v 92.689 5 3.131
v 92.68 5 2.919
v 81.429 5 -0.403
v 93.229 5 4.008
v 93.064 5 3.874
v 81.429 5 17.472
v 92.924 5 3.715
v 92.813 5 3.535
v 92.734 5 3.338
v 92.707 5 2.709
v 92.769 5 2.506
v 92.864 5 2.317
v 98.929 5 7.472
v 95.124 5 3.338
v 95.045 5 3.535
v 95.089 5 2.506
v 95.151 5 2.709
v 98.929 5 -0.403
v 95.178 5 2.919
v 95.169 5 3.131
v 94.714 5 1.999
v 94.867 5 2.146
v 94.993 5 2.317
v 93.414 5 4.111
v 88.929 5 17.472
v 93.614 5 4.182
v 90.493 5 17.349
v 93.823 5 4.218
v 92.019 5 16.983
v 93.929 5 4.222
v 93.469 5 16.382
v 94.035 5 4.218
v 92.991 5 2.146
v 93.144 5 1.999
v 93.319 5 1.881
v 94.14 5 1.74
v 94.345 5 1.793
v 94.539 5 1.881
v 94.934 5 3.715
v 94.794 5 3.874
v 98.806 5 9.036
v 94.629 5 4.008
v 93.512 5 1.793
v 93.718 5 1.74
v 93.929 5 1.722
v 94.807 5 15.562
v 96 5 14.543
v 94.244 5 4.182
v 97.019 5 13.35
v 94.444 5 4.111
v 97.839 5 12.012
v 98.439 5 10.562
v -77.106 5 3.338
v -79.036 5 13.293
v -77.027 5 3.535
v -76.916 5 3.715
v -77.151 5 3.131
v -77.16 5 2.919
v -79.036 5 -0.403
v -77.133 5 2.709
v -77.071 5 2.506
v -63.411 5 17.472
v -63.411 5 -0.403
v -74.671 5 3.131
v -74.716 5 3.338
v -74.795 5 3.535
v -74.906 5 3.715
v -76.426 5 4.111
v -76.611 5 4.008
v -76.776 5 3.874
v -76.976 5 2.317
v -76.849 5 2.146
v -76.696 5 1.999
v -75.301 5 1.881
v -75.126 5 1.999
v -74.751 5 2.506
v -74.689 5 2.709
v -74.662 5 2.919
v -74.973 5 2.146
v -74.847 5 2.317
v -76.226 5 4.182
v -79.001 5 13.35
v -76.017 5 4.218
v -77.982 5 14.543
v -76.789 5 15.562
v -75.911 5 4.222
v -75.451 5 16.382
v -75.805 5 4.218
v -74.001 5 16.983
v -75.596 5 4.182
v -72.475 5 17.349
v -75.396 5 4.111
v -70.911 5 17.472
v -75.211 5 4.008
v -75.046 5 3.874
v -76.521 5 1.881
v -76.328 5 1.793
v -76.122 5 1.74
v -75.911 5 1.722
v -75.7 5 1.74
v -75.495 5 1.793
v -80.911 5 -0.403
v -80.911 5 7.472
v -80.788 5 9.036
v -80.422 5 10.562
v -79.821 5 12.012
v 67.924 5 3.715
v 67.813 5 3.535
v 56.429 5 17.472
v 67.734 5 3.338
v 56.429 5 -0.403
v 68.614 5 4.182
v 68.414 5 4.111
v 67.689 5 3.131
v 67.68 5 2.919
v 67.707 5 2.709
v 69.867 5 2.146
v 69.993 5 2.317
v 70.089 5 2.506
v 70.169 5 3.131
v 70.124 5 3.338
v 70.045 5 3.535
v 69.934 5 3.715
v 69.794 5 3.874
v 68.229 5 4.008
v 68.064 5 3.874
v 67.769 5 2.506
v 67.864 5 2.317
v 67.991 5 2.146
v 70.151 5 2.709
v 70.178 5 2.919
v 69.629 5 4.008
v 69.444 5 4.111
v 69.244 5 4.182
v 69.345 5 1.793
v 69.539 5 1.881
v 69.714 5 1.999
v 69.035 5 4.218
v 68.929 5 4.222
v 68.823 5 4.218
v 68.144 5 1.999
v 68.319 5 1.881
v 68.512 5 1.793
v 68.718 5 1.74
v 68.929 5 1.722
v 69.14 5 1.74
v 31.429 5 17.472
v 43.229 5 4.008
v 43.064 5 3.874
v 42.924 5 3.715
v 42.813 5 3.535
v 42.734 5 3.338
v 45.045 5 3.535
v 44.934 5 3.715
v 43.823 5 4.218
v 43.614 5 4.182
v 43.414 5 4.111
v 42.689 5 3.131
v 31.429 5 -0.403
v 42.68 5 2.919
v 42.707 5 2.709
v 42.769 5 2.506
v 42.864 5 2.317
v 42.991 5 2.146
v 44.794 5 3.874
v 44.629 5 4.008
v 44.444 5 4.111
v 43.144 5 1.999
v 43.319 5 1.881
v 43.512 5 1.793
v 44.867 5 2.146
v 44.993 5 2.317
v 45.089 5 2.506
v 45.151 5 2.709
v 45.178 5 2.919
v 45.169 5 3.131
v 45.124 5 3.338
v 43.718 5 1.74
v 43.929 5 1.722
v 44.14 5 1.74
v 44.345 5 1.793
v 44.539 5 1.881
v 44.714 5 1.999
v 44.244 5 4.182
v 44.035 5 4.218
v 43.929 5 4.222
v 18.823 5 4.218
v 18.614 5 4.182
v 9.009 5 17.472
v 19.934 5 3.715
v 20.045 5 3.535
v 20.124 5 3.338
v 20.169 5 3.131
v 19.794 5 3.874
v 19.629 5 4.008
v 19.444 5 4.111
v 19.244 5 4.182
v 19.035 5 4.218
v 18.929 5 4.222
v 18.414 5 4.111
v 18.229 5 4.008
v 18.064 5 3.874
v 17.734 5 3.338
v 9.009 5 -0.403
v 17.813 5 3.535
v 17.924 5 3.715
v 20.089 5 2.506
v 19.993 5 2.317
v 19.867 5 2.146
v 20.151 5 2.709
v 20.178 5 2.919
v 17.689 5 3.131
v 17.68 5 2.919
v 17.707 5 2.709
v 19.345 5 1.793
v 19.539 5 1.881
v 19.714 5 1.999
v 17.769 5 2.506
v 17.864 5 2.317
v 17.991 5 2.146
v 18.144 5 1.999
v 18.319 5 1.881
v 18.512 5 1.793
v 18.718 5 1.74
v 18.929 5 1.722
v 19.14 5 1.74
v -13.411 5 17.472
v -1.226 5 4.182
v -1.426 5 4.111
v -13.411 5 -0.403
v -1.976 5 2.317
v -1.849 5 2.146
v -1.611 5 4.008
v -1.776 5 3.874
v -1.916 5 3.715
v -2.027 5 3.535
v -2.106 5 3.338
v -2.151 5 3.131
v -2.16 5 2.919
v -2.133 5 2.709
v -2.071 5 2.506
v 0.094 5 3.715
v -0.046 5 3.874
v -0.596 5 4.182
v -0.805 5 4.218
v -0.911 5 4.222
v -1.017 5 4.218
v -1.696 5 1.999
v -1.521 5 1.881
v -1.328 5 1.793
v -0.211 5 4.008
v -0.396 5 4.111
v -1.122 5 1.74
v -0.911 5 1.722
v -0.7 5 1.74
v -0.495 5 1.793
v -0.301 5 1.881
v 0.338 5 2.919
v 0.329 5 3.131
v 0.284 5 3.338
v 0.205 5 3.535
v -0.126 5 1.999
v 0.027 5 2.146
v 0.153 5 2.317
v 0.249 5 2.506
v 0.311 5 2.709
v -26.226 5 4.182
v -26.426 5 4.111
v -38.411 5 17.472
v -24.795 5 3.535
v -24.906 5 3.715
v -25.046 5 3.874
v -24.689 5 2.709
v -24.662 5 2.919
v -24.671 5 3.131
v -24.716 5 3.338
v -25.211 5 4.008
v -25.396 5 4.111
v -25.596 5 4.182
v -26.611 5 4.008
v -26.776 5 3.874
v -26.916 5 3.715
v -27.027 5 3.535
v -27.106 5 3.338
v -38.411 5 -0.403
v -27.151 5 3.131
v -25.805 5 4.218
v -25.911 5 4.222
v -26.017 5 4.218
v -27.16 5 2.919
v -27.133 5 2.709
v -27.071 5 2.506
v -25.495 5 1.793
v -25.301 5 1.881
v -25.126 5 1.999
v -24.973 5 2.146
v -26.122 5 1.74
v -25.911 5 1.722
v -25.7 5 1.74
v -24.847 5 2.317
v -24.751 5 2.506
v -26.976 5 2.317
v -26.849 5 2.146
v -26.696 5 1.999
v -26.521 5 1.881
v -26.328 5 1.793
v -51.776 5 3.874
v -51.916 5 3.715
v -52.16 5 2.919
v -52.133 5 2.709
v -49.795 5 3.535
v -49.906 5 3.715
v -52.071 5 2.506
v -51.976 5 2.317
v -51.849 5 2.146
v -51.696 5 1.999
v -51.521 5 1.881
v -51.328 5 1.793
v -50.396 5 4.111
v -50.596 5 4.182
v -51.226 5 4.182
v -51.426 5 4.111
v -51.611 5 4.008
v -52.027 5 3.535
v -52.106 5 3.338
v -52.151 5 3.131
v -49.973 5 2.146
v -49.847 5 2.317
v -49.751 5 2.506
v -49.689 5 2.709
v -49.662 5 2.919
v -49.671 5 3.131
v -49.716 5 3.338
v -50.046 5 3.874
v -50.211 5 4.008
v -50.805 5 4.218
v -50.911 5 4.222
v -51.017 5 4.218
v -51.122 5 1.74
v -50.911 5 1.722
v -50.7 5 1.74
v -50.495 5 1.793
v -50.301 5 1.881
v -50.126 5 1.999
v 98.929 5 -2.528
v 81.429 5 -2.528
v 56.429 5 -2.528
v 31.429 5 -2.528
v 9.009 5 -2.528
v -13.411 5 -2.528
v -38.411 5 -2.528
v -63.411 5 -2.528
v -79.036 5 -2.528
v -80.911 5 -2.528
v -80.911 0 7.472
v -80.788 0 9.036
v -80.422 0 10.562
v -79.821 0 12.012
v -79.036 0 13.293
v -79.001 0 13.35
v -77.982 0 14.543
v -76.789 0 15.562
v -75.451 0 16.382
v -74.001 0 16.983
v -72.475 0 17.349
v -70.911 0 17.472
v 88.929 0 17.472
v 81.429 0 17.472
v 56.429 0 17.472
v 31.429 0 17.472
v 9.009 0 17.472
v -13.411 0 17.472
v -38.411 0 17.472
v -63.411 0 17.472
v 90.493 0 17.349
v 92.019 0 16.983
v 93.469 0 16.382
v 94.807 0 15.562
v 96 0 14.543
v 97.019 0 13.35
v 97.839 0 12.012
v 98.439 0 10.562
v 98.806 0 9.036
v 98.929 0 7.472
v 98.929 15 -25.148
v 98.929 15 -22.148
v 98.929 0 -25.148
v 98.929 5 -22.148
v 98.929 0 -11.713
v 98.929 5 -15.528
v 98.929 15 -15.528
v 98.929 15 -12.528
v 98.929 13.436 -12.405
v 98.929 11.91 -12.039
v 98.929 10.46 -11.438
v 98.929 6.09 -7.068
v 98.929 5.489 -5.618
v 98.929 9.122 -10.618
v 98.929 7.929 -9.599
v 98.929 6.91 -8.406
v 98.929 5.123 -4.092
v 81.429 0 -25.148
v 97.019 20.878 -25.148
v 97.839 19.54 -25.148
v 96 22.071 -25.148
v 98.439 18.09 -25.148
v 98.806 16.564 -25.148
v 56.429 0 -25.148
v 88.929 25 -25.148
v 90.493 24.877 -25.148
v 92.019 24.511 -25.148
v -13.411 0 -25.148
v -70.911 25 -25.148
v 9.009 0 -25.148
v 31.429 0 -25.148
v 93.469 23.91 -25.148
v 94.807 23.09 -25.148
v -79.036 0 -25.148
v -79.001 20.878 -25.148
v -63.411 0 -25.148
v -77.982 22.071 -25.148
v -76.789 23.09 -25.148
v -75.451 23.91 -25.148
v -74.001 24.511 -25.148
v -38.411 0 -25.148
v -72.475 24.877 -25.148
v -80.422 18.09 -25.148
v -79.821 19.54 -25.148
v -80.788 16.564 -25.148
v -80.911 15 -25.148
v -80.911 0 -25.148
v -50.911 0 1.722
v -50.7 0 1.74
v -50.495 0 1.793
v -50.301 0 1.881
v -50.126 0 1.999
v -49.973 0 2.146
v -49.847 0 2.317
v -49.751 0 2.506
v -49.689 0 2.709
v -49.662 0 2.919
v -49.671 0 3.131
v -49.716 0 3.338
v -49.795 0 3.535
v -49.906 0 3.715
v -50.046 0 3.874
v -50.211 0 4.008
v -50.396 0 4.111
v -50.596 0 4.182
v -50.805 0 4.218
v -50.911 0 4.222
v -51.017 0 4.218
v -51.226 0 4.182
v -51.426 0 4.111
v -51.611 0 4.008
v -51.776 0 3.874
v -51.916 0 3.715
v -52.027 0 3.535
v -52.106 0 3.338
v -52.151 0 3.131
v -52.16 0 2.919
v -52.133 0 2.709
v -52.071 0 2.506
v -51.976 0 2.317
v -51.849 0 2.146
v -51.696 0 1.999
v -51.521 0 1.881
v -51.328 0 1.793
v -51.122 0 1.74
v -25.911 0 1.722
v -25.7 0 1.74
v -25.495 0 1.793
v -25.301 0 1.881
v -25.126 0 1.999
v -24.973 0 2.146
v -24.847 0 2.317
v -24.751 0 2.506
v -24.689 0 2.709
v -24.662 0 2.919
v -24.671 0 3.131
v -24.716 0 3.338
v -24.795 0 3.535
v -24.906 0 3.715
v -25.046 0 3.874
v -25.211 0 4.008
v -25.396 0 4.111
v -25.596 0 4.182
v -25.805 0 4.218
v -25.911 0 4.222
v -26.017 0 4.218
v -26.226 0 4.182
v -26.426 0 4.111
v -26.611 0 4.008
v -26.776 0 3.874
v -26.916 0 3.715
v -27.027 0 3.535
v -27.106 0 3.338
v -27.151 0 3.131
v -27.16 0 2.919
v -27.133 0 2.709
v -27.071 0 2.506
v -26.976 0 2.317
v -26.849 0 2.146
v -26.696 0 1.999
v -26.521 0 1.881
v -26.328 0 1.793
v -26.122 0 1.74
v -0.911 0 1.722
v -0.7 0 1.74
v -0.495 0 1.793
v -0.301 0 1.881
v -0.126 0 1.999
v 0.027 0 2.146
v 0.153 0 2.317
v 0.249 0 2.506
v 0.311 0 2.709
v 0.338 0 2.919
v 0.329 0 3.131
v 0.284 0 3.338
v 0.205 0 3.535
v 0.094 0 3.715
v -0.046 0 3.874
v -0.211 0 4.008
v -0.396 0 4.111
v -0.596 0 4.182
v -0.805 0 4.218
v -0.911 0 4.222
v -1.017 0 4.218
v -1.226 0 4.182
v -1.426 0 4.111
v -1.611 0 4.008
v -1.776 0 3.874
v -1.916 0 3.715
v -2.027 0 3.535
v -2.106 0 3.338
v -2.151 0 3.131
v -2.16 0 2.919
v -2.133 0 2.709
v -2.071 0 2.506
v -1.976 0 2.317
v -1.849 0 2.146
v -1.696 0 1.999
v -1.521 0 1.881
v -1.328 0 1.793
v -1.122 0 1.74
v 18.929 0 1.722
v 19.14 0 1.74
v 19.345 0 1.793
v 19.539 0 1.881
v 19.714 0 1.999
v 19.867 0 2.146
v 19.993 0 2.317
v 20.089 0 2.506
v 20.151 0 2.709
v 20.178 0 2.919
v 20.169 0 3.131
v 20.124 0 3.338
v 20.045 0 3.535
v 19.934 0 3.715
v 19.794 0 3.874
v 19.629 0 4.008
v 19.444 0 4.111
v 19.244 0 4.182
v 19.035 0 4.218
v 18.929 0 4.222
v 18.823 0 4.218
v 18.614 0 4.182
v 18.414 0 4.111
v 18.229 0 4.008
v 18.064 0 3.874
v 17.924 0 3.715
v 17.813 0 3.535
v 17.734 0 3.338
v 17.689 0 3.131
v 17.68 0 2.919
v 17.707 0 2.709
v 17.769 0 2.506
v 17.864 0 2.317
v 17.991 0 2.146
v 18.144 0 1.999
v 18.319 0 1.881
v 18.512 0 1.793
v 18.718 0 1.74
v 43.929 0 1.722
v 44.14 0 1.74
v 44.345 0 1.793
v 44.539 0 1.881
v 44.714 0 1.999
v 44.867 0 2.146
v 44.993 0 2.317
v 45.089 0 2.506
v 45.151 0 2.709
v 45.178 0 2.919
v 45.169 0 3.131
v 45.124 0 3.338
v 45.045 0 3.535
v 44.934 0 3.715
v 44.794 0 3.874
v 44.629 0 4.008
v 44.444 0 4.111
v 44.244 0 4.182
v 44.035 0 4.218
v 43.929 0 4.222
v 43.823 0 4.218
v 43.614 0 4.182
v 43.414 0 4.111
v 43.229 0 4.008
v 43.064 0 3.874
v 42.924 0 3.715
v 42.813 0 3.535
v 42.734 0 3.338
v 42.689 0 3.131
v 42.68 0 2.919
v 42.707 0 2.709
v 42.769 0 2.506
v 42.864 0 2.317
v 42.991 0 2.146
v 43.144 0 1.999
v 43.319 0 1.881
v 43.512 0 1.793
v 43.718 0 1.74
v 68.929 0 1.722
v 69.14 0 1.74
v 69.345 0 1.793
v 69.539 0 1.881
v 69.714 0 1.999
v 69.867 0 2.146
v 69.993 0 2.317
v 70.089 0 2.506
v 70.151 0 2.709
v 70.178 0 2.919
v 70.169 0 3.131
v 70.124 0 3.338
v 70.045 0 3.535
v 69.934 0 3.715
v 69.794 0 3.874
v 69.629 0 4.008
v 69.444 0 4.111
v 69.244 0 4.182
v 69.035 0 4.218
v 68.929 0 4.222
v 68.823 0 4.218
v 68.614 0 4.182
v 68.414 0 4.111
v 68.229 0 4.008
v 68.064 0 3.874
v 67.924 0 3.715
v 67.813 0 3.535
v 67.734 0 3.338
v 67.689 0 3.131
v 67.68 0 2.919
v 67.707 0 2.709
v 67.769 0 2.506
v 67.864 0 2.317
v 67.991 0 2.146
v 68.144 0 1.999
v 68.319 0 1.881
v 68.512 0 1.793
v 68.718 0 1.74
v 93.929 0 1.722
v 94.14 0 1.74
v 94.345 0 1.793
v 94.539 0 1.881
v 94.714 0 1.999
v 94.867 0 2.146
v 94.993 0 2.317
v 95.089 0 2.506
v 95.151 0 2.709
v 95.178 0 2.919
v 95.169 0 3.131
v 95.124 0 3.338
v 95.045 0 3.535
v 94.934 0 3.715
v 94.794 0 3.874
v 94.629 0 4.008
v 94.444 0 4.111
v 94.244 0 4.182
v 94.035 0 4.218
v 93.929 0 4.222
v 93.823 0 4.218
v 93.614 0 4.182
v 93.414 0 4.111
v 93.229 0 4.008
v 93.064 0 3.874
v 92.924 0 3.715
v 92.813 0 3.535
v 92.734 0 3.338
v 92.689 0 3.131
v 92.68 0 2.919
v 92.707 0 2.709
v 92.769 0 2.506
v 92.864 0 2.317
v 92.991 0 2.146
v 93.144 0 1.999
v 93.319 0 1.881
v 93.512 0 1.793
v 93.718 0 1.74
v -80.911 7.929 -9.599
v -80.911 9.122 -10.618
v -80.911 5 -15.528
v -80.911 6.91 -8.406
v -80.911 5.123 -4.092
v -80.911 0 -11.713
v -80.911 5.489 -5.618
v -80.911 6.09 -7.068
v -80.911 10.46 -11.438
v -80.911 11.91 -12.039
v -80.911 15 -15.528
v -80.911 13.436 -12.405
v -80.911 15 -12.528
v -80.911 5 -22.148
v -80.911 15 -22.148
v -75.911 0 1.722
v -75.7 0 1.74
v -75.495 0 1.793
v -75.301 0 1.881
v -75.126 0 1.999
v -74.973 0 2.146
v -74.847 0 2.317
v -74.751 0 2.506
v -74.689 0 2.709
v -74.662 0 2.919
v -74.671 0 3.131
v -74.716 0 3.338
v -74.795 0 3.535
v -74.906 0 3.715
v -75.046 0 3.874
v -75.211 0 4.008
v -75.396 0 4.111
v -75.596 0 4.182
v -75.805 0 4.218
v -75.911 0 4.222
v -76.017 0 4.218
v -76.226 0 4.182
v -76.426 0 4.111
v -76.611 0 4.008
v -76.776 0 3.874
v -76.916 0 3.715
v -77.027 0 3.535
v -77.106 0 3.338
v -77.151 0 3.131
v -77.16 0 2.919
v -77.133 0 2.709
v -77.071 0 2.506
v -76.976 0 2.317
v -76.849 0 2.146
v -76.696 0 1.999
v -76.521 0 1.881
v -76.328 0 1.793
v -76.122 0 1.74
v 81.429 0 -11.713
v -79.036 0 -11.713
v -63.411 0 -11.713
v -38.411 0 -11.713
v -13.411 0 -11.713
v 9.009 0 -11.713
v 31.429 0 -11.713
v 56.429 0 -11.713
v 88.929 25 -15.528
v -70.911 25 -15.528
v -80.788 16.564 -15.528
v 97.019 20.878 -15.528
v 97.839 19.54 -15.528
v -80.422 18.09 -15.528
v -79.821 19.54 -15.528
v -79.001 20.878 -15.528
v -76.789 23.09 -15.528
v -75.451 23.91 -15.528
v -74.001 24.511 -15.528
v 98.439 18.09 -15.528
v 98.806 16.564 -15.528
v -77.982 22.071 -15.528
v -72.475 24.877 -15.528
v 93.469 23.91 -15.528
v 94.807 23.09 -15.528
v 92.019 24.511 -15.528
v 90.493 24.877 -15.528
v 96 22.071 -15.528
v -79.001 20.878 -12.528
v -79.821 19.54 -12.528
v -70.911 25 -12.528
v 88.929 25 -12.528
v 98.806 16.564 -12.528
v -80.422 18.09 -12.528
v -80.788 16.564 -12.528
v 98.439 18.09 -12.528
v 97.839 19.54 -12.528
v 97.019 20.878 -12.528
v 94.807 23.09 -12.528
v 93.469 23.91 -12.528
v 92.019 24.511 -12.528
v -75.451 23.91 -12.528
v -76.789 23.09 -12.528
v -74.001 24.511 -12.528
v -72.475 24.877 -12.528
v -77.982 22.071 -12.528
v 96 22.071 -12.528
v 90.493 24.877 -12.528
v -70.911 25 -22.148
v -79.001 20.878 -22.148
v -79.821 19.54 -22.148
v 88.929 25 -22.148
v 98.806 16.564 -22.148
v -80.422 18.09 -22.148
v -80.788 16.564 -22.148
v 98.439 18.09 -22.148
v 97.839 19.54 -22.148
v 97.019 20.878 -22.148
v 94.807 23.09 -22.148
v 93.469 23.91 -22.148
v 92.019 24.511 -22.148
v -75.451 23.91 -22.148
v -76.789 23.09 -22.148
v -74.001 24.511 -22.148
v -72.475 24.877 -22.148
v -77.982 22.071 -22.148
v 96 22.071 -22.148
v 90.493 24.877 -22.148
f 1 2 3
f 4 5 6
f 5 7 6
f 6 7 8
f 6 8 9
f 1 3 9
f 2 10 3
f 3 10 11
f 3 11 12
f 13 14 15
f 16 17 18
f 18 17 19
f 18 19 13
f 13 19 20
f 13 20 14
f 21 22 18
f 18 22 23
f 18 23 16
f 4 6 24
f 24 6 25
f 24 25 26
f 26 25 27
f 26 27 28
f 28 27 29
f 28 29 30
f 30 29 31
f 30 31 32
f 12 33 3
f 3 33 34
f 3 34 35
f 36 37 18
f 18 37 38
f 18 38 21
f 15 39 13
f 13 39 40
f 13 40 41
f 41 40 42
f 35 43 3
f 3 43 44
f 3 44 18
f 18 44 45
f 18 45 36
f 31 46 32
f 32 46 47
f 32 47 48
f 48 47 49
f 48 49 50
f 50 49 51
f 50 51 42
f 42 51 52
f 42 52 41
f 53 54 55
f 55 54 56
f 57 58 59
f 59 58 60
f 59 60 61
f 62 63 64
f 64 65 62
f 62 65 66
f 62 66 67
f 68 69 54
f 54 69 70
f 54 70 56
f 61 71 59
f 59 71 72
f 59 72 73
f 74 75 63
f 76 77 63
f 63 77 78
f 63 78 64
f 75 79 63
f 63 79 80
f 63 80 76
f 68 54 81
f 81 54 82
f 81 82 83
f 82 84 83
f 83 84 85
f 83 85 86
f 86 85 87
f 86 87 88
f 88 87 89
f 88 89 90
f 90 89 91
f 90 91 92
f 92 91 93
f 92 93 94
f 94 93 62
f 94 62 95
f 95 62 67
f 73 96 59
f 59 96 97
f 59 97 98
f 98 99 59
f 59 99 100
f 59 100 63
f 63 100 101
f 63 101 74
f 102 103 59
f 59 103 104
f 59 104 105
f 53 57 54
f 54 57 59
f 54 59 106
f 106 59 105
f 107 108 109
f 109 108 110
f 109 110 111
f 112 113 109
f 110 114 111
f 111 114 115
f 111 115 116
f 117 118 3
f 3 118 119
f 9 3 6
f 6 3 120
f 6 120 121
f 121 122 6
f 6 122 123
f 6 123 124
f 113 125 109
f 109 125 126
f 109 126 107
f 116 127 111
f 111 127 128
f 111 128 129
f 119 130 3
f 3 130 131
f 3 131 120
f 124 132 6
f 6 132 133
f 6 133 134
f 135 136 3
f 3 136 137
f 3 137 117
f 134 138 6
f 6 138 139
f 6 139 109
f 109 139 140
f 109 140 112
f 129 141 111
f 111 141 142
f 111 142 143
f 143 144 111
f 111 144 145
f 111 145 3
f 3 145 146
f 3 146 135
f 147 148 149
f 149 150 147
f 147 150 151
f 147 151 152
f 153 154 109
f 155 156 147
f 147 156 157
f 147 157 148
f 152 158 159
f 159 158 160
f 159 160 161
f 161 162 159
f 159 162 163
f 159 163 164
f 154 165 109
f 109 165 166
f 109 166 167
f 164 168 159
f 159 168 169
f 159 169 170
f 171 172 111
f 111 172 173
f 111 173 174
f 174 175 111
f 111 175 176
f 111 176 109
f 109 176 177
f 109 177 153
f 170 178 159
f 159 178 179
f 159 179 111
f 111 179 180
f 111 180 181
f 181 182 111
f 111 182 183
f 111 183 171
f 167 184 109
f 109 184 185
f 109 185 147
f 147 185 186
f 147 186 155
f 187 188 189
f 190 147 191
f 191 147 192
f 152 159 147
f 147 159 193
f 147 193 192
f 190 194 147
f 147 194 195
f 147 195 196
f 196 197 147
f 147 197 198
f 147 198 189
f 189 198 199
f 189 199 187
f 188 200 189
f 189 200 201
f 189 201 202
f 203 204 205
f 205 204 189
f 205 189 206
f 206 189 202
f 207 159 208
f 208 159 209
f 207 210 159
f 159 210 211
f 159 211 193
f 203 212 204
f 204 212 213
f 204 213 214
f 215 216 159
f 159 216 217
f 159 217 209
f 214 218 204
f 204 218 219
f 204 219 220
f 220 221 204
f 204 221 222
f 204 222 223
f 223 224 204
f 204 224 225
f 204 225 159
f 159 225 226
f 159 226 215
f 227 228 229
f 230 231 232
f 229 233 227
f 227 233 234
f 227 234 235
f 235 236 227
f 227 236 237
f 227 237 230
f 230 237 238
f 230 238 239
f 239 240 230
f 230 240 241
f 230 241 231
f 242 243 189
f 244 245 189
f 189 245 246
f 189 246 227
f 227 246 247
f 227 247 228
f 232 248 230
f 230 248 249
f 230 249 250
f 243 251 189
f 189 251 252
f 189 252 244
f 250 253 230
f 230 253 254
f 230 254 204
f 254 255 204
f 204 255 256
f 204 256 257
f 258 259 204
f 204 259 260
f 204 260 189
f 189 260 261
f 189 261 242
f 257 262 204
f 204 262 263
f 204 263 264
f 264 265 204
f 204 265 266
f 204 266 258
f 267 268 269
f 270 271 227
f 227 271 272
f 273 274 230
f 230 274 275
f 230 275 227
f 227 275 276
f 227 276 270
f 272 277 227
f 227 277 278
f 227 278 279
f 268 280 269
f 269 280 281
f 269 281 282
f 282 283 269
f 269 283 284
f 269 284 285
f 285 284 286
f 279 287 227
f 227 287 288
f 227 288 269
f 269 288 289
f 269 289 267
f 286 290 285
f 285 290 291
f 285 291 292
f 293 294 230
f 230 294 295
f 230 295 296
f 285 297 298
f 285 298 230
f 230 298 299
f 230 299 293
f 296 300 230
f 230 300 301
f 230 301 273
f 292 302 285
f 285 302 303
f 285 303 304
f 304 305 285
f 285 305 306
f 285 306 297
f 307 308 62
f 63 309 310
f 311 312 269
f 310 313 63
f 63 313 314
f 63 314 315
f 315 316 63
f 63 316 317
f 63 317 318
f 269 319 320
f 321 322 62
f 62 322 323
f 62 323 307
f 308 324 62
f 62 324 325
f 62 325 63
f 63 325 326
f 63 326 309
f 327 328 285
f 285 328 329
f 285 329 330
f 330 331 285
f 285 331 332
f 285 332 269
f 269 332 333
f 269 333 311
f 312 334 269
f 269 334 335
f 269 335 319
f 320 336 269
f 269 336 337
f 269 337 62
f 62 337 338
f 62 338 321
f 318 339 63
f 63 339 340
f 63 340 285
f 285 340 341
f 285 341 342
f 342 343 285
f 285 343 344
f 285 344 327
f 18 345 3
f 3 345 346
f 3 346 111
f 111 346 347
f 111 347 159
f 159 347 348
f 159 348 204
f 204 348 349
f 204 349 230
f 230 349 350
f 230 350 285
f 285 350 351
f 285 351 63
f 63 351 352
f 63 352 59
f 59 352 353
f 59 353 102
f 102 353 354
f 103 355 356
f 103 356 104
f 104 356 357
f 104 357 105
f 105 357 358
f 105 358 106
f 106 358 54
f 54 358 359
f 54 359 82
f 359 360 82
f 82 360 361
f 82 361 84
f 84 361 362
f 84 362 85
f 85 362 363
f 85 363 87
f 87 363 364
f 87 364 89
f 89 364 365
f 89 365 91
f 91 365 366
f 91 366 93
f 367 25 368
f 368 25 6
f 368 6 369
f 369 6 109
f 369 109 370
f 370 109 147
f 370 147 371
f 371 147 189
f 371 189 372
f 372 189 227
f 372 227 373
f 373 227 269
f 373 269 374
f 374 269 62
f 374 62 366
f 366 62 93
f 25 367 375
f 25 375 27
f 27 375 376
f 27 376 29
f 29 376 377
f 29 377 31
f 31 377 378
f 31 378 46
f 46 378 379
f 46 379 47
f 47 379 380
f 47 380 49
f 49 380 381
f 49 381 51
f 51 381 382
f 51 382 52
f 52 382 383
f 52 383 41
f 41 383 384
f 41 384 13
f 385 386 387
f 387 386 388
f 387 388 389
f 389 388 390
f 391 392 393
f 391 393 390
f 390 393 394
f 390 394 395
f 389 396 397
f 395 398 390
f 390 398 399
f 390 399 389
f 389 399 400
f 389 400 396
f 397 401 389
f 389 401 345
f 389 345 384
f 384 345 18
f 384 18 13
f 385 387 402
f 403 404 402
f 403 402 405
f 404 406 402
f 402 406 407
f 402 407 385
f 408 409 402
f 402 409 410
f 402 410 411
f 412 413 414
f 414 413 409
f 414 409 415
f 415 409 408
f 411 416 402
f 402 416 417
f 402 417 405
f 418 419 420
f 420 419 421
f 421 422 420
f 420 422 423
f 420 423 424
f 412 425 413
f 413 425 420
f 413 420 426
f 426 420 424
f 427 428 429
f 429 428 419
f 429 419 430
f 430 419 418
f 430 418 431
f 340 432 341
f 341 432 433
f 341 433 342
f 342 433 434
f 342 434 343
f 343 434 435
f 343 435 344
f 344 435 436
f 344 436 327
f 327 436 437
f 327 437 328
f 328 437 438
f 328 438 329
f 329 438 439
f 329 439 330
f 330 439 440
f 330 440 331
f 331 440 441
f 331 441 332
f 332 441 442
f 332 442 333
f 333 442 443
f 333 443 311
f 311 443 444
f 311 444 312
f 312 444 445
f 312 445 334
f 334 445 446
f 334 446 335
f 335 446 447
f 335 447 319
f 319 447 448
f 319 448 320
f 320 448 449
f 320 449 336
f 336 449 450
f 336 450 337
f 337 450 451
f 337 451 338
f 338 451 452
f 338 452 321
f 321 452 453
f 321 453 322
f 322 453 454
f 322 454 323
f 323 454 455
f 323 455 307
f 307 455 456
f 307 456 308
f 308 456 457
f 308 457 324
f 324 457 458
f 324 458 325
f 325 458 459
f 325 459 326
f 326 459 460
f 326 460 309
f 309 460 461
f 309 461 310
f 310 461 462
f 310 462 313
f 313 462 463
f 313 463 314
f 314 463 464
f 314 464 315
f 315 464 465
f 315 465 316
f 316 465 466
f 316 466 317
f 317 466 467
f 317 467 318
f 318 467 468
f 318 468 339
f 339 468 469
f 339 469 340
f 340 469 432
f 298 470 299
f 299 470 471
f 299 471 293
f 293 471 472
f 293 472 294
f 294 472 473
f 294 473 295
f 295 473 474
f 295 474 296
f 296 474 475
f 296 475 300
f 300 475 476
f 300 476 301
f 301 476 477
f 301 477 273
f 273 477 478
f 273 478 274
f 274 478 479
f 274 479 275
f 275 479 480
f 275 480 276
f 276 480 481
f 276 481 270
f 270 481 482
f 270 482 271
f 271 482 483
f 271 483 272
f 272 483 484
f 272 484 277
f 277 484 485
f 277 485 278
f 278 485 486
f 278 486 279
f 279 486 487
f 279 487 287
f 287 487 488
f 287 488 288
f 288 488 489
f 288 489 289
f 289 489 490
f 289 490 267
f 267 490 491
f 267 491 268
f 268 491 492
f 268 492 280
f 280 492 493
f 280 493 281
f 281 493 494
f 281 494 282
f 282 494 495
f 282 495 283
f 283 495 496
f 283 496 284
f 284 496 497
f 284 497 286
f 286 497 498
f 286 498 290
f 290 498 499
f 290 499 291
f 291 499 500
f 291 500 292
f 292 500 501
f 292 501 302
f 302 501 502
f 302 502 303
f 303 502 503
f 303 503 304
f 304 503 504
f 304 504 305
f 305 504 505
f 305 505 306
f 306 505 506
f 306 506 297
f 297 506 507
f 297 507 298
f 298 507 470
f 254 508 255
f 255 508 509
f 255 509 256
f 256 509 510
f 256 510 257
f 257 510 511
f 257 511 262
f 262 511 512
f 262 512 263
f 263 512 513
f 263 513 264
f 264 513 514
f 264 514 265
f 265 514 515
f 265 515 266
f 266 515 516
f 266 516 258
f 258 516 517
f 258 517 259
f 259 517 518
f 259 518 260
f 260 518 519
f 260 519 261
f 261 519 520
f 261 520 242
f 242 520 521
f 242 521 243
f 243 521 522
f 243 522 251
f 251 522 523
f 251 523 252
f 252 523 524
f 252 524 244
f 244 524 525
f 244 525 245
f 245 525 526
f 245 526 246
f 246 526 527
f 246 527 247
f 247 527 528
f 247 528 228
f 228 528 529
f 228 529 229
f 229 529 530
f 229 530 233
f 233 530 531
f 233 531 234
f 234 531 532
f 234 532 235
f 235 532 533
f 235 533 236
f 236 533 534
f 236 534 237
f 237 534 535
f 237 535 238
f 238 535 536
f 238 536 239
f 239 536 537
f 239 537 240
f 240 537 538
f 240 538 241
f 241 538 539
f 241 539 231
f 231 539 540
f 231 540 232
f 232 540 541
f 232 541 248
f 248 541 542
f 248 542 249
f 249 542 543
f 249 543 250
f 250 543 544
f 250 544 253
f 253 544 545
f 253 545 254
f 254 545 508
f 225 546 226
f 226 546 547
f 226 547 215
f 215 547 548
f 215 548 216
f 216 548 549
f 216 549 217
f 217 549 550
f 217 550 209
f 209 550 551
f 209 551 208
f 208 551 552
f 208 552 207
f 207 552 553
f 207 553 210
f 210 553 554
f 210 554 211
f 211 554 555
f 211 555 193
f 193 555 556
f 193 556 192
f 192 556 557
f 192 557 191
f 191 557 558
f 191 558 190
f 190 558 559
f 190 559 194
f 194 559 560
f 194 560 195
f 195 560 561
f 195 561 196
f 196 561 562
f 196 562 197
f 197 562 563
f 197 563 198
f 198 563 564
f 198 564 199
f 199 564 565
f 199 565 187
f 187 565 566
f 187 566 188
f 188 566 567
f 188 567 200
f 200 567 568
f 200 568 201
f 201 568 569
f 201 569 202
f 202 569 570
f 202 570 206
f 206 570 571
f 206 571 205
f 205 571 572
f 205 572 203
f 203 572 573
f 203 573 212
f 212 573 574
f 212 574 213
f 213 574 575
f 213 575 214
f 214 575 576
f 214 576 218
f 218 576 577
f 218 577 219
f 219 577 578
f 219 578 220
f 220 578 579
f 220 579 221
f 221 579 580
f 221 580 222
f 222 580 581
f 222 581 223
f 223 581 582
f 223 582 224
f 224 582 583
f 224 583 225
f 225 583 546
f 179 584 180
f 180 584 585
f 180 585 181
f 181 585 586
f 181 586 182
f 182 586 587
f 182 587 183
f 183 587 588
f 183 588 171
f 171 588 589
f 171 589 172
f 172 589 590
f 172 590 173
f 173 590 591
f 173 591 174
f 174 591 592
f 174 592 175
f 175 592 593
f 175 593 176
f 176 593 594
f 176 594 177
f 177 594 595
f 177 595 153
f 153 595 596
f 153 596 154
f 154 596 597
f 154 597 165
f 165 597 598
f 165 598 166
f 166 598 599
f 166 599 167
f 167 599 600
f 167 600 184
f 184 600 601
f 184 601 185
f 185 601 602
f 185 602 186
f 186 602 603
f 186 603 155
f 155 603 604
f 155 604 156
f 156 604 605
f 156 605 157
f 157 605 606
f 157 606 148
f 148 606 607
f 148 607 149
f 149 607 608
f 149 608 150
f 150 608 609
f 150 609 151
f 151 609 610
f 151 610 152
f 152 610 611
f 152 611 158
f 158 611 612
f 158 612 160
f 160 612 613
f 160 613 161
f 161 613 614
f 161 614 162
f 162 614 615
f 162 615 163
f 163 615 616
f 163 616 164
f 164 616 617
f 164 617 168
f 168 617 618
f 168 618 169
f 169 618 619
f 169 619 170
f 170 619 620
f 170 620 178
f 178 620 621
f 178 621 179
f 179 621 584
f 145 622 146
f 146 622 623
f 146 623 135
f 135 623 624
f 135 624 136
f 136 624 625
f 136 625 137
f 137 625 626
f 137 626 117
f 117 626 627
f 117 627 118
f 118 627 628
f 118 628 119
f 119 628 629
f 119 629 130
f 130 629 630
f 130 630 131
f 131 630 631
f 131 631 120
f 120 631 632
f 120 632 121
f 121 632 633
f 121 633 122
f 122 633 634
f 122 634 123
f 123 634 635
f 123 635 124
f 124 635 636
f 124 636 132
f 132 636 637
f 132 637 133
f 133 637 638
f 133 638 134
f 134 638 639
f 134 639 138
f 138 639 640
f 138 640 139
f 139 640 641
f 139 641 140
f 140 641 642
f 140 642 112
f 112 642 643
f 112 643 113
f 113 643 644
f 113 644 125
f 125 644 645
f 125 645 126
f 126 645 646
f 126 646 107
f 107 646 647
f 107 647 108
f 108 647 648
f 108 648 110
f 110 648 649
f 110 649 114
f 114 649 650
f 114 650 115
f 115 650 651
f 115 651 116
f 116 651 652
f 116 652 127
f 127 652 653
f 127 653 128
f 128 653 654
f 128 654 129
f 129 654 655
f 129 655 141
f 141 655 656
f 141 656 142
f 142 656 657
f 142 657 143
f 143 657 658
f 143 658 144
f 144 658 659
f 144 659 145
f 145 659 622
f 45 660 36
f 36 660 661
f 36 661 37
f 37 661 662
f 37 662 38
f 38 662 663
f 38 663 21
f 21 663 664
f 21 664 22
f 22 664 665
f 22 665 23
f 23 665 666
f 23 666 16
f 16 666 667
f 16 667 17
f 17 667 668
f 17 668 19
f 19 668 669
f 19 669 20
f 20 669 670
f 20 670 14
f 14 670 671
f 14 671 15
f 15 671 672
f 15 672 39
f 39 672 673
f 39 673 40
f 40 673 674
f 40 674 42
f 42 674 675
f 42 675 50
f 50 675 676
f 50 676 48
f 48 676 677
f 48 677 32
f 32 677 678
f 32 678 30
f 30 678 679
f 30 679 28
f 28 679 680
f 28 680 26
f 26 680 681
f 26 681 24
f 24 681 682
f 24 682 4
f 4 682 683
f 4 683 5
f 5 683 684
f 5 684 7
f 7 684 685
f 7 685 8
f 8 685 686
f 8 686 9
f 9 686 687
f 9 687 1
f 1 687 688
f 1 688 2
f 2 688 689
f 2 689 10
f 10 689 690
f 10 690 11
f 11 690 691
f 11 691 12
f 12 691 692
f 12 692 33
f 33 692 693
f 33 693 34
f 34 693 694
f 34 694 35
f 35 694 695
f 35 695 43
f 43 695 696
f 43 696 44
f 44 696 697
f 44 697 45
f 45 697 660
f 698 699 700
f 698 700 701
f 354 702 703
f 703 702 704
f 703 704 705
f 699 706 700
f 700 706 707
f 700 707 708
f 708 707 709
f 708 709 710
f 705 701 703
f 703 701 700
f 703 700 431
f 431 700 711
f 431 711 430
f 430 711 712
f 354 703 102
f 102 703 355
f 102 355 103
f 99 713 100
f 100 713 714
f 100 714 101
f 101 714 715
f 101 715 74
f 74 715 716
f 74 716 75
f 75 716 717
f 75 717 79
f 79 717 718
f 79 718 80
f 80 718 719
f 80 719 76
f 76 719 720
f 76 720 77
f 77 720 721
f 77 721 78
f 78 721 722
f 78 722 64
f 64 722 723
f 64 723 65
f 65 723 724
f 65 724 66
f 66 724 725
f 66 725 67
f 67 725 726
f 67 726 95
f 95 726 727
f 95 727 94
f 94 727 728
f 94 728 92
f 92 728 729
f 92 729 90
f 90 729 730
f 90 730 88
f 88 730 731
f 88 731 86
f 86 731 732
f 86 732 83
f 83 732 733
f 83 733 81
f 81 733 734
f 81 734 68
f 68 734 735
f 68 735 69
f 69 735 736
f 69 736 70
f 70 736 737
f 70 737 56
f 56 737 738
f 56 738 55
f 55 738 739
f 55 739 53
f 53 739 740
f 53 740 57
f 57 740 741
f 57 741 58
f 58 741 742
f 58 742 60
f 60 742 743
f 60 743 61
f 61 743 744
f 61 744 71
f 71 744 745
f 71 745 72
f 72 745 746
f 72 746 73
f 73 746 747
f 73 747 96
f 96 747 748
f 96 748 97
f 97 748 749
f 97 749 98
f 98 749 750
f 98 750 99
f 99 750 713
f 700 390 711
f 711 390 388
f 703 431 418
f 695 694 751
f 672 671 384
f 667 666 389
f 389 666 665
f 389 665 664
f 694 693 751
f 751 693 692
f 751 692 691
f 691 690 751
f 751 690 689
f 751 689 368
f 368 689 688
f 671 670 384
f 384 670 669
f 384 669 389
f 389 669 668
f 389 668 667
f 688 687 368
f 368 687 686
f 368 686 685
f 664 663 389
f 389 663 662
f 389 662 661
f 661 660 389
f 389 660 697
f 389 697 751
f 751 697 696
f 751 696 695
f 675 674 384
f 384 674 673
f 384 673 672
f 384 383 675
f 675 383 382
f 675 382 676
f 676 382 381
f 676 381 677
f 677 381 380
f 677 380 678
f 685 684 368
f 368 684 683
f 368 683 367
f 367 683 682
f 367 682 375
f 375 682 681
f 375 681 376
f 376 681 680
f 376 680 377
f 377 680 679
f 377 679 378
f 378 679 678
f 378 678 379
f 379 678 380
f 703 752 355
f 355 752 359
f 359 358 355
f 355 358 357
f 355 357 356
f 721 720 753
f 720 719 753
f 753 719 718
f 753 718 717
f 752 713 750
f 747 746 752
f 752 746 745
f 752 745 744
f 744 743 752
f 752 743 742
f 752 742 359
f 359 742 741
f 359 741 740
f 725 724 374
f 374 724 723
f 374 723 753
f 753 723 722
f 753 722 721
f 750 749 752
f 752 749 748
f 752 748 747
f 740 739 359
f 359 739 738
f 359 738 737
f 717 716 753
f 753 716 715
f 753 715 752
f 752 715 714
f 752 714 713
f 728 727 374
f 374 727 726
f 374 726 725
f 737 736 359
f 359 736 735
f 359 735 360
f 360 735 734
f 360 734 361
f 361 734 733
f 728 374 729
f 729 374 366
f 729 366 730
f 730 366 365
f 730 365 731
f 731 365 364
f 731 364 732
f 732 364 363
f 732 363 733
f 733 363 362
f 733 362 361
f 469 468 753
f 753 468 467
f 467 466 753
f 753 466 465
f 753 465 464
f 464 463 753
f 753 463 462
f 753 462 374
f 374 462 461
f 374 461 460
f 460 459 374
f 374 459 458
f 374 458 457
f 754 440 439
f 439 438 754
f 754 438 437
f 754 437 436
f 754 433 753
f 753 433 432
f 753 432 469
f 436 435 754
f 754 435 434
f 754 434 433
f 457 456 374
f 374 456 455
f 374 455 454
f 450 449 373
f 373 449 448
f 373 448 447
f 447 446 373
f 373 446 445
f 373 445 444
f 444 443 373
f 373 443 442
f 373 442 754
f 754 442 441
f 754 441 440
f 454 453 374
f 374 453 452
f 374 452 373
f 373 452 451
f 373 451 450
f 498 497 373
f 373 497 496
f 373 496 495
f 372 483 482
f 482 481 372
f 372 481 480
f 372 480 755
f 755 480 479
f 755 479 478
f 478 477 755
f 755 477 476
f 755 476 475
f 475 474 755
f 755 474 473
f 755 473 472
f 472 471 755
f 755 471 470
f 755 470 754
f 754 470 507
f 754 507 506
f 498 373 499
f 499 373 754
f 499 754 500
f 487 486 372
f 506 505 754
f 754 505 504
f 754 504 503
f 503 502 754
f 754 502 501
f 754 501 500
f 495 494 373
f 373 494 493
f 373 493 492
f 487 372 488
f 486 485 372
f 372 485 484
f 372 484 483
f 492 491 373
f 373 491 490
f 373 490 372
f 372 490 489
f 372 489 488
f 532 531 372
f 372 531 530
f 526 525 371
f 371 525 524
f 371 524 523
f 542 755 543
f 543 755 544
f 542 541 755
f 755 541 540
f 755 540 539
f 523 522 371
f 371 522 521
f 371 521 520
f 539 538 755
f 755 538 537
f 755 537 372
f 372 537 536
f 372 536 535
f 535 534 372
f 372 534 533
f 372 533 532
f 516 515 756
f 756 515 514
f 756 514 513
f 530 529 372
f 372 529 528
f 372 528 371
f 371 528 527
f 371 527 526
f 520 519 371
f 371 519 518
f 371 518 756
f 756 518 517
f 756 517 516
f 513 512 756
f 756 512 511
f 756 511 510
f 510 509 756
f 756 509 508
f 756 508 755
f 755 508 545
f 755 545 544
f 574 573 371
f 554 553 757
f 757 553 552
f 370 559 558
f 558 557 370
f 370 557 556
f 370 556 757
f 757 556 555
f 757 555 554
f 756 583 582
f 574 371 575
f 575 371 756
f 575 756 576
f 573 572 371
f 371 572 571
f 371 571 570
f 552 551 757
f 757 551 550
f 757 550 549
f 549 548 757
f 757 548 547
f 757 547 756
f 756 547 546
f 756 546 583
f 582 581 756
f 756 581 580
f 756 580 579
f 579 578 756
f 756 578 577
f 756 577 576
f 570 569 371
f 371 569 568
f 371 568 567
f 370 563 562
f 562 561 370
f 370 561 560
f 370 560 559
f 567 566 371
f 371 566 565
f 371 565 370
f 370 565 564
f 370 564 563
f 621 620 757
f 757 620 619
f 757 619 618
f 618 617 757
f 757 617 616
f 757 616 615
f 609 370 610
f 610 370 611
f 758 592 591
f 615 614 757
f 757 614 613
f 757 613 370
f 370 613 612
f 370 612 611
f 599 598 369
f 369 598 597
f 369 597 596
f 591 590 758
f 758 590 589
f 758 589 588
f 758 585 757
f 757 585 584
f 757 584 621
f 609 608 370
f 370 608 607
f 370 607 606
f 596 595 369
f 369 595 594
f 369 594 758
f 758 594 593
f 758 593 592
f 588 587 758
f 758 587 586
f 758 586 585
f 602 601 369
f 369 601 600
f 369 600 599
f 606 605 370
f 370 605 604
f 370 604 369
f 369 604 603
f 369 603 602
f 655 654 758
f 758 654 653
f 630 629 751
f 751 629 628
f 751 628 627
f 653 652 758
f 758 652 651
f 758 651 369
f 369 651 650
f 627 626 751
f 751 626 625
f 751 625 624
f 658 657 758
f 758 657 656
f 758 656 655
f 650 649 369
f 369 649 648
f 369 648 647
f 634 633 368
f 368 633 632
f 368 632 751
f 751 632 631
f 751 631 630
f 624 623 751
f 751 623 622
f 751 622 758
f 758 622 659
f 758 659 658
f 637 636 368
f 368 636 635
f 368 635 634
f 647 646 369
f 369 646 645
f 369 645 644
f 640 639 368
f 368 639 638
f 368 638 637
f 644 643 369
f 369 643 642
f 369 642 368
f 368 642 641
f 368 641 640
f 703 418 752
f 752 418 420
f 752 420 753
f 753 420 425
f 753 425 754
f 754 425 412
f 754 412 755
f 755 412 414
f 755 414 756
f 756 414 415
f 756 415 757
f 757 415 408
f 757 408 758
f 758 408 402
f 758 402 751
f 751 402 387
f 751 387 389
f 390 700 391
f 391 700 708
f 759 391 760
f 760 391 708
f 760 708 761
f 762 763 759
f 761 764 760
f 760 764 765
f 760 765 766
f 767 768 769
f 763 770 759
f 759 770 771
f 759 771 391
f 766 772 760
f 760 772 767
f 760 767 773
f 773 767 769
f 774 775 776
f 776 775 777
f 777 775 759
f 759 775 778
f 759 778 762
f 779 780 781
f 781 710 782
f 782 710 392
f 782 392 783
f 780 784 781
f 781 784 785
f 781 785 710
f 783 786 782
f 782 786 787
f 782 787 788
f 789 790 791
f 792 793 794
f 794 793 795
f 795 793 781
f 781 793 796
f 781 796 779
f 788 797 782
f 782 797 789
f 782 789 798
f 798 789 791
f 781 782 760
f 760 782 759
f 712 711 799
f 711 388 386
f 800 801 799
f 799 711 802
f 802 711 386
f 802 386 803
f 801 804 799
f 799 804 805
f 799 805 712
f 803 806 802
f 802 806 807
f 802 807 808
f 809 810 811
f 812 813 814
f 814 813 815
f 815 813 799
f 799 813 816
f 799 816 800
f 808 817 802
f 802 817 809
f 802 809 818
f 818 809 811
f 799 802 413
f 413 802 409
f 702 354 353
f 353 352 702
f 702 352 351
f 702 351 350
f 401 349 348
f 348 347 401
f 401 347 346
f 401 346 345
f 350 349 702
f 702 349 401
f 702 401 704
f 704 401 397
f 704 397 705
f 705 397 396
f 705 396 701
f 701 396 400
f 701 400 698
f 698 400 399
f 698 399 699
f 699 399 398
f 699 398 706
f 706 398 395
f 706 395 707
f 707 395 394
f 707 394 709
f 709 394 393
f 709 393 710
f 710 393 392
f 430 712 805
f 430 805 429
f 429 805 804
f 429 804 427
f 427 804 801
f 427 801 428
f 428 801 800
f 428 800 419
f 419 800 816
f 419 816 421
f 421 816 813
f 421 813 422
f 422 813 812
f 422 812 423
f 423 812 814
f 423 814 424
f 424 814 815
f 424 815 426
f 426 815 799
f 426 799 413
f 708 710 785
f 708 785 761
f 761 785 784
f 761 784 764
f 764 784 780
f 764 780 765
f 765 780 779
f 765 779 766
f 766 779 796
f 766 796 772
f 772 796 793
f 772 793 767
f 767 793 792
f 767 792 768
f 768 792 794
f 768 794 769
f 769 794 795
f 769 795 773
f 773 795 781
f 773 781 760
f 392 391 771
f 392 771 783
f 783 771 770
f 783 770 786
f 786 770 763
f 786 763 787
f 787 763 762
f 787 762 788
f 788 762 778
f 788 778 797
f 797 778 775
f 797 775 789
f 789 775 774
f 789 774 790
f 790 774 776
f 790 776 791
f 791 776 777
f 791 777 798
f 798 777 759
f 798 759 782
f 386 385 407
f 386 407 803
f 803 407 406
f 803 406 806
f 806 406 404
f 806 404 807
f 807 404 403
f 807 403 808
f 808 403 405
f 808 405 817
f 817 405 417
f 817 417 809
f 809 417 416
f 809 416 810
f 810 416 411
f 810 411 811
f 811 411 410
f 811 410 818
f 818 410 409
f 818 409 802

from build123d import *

# Parameters (mm, degrees)
SKETCH1_R           = 1.25
SKETCH1_W           = 179.84
SKETCH1_H           = 3
SKETCH1_H_2         = 6.62
BOSS_EXTRUDE1_DEPTH = 5
BOSS_EXTRUDE2_START = 5
SKETCH1_3_W         = 179.84
SKETCH1_3_H         = 3
BOSS_EXTRUDE2_DEPTH = 20
FILLET1_R           = 10
FILLET2_R           = 10


with BuildPart() as part:
    # Sketch1 → Boss-Extrude1 (new body)
    # profile 1 of 4: a face of its own
    with BuildSketch(Plane(origin=(0, 0, 0), x_dir=(1, 0, 0), z_dir=(0, 1, 0))):
        with BuildLine():
            Line((98.928888889, 12.527973461), (-80.911111111, 12.527973461))
            Line((-80.911111111, 12.527973461), (-80.911111111, -7.472026539))
            ThreePointArc((-80.911111111, -7.472026539), (-77.982178923, -14.543094351), (-70.911111111, -17.472026539))
            Line((-70.911111111, -17.472026539), (88.928888889, -17.472026539))
            ThreePointArc((88.928888889, -17.472026539), (95.999956701, -14.543094351), (98.928888889, -7.472026539))
            Line((98.928888889, -7.472026539), (98.928888889, 12.527973461))
        make_face()
        with Locations(Location((-75.911111111, -2.972026539, 0), (0, 0, 270))):
            Circle(SKETCH1_R, mode=Mode.SUBTRACT)
        with Locations(Location((-50.911111111, -2.972026539, 0), (0, 0, 270))):
            Circle(SKETCH1_R, mode=Mode.SUBTRACT)
        with Locations(Location((-25.911111111, -2.972026539, 0), (0, 0, 270))):
            Circle(SKETCH1_R, mode=Mode.SUBTRACT)
        with Locations(Location((-0.911111111, -2.972026539, 0), (0, 0, 270))):
            Circle(SKETCH1_R, mode=Mode.SUBTRACT)
        with Locations(Location((18.928888889, -2.972026539, 0), (0, 0, 270))):
            Circle(SKETCH1_R, mode=Mode.SUBTRACT)
        with Locations(Location((43.928888889, -2.972026539, 0), (0, 0, 270))):
            Circle(SKETCH1_R, mode=Mode.SUBTRACT)
        with Locations(Location((68.928888889, -2.972026539, 0), (0, 0, 270))):
            Circle(SKETCH1_R, mode=Mode.SUBTRACT)
        with Locations(Location((93.928888889, -2.972026539, 0), (0, 0, 270))):
            Circle(SKETCH1_R, mode=Mode.SUBTRACT)
    # profile 2 of 4: a face of its own
    with BuildSketch(Plane(origin=(0, 0, 0), x_dir=(1, 0, 0), z_dir=(0, 1, 0))):
        with Locations((9.008888889, 14.027973461)):
            Rectangle(SKETCH1_W, SKETCH1_H)
    # profile 3 of 4: a face of its own
    with BuildSketch(Plane(origin=(0, 0, 0), x_dir=(1, 0, 0), z_dir=(0, 1, 0))):
        with Locations((9.008888889, 18.837973461)):
            Rectangle(SKETCH1_W, SKETCH1_H_2)
    # profile 4 of 4: a face of its own
    with BuildSketch(Plane(origin=(0, 0, 0), x_dir=(1, 0, 0), z_dir=(0, 1, 0))):
        with Locations((9.008888889, 23.647973461)):
            Rectangle(SKETCH1_W, SKETCH1_H)
    extrude(amount=BOSS_EXTRUDE1_DEPTH)

    # Sketch1<3> → Boss-Extrude2 (add)
    with BuildSketch(Plane(origin=(0, 0, 0), x_dir=(1, 0, 0), z_dir=(0, 1, 0)).offset(BOSS_EXTRUDE2_START)):
        with Locations((9.008888889, 14.027973461)):
            Rectangle(SKETCH1_3_W, SKETCH1_3_H)
        with Locations((9.008888889, 23.647973461)):
            Rectangle(SKETCH1_3_W, SKETCH1_3_H)
    extrude(amount=BOSS_EXTRUDE2_DEPTH)

    # Fillet1
    fillet1_edges = [part.edges().sort_by_distance(p)[0] for p in [
        (9.008888889, 5, -12.527973461),
    ]]
    fillet(fillet1_edges, radius=FILLET1_R)

    # Fillet2
    fillet2_edges = [part.edges().sort_by_distance(p)[0] for p in [
        (-80.911111111, 25, -23.647973461),
        (-80.911111111, 25, -14.027973461),
        (98.928888889, 25, -14.027973461),
        (98.928888889, 25, -23.647973461),
    ]]
    fillet(fillet2_edges, radius=FILLET2_R)


solid = part.part
